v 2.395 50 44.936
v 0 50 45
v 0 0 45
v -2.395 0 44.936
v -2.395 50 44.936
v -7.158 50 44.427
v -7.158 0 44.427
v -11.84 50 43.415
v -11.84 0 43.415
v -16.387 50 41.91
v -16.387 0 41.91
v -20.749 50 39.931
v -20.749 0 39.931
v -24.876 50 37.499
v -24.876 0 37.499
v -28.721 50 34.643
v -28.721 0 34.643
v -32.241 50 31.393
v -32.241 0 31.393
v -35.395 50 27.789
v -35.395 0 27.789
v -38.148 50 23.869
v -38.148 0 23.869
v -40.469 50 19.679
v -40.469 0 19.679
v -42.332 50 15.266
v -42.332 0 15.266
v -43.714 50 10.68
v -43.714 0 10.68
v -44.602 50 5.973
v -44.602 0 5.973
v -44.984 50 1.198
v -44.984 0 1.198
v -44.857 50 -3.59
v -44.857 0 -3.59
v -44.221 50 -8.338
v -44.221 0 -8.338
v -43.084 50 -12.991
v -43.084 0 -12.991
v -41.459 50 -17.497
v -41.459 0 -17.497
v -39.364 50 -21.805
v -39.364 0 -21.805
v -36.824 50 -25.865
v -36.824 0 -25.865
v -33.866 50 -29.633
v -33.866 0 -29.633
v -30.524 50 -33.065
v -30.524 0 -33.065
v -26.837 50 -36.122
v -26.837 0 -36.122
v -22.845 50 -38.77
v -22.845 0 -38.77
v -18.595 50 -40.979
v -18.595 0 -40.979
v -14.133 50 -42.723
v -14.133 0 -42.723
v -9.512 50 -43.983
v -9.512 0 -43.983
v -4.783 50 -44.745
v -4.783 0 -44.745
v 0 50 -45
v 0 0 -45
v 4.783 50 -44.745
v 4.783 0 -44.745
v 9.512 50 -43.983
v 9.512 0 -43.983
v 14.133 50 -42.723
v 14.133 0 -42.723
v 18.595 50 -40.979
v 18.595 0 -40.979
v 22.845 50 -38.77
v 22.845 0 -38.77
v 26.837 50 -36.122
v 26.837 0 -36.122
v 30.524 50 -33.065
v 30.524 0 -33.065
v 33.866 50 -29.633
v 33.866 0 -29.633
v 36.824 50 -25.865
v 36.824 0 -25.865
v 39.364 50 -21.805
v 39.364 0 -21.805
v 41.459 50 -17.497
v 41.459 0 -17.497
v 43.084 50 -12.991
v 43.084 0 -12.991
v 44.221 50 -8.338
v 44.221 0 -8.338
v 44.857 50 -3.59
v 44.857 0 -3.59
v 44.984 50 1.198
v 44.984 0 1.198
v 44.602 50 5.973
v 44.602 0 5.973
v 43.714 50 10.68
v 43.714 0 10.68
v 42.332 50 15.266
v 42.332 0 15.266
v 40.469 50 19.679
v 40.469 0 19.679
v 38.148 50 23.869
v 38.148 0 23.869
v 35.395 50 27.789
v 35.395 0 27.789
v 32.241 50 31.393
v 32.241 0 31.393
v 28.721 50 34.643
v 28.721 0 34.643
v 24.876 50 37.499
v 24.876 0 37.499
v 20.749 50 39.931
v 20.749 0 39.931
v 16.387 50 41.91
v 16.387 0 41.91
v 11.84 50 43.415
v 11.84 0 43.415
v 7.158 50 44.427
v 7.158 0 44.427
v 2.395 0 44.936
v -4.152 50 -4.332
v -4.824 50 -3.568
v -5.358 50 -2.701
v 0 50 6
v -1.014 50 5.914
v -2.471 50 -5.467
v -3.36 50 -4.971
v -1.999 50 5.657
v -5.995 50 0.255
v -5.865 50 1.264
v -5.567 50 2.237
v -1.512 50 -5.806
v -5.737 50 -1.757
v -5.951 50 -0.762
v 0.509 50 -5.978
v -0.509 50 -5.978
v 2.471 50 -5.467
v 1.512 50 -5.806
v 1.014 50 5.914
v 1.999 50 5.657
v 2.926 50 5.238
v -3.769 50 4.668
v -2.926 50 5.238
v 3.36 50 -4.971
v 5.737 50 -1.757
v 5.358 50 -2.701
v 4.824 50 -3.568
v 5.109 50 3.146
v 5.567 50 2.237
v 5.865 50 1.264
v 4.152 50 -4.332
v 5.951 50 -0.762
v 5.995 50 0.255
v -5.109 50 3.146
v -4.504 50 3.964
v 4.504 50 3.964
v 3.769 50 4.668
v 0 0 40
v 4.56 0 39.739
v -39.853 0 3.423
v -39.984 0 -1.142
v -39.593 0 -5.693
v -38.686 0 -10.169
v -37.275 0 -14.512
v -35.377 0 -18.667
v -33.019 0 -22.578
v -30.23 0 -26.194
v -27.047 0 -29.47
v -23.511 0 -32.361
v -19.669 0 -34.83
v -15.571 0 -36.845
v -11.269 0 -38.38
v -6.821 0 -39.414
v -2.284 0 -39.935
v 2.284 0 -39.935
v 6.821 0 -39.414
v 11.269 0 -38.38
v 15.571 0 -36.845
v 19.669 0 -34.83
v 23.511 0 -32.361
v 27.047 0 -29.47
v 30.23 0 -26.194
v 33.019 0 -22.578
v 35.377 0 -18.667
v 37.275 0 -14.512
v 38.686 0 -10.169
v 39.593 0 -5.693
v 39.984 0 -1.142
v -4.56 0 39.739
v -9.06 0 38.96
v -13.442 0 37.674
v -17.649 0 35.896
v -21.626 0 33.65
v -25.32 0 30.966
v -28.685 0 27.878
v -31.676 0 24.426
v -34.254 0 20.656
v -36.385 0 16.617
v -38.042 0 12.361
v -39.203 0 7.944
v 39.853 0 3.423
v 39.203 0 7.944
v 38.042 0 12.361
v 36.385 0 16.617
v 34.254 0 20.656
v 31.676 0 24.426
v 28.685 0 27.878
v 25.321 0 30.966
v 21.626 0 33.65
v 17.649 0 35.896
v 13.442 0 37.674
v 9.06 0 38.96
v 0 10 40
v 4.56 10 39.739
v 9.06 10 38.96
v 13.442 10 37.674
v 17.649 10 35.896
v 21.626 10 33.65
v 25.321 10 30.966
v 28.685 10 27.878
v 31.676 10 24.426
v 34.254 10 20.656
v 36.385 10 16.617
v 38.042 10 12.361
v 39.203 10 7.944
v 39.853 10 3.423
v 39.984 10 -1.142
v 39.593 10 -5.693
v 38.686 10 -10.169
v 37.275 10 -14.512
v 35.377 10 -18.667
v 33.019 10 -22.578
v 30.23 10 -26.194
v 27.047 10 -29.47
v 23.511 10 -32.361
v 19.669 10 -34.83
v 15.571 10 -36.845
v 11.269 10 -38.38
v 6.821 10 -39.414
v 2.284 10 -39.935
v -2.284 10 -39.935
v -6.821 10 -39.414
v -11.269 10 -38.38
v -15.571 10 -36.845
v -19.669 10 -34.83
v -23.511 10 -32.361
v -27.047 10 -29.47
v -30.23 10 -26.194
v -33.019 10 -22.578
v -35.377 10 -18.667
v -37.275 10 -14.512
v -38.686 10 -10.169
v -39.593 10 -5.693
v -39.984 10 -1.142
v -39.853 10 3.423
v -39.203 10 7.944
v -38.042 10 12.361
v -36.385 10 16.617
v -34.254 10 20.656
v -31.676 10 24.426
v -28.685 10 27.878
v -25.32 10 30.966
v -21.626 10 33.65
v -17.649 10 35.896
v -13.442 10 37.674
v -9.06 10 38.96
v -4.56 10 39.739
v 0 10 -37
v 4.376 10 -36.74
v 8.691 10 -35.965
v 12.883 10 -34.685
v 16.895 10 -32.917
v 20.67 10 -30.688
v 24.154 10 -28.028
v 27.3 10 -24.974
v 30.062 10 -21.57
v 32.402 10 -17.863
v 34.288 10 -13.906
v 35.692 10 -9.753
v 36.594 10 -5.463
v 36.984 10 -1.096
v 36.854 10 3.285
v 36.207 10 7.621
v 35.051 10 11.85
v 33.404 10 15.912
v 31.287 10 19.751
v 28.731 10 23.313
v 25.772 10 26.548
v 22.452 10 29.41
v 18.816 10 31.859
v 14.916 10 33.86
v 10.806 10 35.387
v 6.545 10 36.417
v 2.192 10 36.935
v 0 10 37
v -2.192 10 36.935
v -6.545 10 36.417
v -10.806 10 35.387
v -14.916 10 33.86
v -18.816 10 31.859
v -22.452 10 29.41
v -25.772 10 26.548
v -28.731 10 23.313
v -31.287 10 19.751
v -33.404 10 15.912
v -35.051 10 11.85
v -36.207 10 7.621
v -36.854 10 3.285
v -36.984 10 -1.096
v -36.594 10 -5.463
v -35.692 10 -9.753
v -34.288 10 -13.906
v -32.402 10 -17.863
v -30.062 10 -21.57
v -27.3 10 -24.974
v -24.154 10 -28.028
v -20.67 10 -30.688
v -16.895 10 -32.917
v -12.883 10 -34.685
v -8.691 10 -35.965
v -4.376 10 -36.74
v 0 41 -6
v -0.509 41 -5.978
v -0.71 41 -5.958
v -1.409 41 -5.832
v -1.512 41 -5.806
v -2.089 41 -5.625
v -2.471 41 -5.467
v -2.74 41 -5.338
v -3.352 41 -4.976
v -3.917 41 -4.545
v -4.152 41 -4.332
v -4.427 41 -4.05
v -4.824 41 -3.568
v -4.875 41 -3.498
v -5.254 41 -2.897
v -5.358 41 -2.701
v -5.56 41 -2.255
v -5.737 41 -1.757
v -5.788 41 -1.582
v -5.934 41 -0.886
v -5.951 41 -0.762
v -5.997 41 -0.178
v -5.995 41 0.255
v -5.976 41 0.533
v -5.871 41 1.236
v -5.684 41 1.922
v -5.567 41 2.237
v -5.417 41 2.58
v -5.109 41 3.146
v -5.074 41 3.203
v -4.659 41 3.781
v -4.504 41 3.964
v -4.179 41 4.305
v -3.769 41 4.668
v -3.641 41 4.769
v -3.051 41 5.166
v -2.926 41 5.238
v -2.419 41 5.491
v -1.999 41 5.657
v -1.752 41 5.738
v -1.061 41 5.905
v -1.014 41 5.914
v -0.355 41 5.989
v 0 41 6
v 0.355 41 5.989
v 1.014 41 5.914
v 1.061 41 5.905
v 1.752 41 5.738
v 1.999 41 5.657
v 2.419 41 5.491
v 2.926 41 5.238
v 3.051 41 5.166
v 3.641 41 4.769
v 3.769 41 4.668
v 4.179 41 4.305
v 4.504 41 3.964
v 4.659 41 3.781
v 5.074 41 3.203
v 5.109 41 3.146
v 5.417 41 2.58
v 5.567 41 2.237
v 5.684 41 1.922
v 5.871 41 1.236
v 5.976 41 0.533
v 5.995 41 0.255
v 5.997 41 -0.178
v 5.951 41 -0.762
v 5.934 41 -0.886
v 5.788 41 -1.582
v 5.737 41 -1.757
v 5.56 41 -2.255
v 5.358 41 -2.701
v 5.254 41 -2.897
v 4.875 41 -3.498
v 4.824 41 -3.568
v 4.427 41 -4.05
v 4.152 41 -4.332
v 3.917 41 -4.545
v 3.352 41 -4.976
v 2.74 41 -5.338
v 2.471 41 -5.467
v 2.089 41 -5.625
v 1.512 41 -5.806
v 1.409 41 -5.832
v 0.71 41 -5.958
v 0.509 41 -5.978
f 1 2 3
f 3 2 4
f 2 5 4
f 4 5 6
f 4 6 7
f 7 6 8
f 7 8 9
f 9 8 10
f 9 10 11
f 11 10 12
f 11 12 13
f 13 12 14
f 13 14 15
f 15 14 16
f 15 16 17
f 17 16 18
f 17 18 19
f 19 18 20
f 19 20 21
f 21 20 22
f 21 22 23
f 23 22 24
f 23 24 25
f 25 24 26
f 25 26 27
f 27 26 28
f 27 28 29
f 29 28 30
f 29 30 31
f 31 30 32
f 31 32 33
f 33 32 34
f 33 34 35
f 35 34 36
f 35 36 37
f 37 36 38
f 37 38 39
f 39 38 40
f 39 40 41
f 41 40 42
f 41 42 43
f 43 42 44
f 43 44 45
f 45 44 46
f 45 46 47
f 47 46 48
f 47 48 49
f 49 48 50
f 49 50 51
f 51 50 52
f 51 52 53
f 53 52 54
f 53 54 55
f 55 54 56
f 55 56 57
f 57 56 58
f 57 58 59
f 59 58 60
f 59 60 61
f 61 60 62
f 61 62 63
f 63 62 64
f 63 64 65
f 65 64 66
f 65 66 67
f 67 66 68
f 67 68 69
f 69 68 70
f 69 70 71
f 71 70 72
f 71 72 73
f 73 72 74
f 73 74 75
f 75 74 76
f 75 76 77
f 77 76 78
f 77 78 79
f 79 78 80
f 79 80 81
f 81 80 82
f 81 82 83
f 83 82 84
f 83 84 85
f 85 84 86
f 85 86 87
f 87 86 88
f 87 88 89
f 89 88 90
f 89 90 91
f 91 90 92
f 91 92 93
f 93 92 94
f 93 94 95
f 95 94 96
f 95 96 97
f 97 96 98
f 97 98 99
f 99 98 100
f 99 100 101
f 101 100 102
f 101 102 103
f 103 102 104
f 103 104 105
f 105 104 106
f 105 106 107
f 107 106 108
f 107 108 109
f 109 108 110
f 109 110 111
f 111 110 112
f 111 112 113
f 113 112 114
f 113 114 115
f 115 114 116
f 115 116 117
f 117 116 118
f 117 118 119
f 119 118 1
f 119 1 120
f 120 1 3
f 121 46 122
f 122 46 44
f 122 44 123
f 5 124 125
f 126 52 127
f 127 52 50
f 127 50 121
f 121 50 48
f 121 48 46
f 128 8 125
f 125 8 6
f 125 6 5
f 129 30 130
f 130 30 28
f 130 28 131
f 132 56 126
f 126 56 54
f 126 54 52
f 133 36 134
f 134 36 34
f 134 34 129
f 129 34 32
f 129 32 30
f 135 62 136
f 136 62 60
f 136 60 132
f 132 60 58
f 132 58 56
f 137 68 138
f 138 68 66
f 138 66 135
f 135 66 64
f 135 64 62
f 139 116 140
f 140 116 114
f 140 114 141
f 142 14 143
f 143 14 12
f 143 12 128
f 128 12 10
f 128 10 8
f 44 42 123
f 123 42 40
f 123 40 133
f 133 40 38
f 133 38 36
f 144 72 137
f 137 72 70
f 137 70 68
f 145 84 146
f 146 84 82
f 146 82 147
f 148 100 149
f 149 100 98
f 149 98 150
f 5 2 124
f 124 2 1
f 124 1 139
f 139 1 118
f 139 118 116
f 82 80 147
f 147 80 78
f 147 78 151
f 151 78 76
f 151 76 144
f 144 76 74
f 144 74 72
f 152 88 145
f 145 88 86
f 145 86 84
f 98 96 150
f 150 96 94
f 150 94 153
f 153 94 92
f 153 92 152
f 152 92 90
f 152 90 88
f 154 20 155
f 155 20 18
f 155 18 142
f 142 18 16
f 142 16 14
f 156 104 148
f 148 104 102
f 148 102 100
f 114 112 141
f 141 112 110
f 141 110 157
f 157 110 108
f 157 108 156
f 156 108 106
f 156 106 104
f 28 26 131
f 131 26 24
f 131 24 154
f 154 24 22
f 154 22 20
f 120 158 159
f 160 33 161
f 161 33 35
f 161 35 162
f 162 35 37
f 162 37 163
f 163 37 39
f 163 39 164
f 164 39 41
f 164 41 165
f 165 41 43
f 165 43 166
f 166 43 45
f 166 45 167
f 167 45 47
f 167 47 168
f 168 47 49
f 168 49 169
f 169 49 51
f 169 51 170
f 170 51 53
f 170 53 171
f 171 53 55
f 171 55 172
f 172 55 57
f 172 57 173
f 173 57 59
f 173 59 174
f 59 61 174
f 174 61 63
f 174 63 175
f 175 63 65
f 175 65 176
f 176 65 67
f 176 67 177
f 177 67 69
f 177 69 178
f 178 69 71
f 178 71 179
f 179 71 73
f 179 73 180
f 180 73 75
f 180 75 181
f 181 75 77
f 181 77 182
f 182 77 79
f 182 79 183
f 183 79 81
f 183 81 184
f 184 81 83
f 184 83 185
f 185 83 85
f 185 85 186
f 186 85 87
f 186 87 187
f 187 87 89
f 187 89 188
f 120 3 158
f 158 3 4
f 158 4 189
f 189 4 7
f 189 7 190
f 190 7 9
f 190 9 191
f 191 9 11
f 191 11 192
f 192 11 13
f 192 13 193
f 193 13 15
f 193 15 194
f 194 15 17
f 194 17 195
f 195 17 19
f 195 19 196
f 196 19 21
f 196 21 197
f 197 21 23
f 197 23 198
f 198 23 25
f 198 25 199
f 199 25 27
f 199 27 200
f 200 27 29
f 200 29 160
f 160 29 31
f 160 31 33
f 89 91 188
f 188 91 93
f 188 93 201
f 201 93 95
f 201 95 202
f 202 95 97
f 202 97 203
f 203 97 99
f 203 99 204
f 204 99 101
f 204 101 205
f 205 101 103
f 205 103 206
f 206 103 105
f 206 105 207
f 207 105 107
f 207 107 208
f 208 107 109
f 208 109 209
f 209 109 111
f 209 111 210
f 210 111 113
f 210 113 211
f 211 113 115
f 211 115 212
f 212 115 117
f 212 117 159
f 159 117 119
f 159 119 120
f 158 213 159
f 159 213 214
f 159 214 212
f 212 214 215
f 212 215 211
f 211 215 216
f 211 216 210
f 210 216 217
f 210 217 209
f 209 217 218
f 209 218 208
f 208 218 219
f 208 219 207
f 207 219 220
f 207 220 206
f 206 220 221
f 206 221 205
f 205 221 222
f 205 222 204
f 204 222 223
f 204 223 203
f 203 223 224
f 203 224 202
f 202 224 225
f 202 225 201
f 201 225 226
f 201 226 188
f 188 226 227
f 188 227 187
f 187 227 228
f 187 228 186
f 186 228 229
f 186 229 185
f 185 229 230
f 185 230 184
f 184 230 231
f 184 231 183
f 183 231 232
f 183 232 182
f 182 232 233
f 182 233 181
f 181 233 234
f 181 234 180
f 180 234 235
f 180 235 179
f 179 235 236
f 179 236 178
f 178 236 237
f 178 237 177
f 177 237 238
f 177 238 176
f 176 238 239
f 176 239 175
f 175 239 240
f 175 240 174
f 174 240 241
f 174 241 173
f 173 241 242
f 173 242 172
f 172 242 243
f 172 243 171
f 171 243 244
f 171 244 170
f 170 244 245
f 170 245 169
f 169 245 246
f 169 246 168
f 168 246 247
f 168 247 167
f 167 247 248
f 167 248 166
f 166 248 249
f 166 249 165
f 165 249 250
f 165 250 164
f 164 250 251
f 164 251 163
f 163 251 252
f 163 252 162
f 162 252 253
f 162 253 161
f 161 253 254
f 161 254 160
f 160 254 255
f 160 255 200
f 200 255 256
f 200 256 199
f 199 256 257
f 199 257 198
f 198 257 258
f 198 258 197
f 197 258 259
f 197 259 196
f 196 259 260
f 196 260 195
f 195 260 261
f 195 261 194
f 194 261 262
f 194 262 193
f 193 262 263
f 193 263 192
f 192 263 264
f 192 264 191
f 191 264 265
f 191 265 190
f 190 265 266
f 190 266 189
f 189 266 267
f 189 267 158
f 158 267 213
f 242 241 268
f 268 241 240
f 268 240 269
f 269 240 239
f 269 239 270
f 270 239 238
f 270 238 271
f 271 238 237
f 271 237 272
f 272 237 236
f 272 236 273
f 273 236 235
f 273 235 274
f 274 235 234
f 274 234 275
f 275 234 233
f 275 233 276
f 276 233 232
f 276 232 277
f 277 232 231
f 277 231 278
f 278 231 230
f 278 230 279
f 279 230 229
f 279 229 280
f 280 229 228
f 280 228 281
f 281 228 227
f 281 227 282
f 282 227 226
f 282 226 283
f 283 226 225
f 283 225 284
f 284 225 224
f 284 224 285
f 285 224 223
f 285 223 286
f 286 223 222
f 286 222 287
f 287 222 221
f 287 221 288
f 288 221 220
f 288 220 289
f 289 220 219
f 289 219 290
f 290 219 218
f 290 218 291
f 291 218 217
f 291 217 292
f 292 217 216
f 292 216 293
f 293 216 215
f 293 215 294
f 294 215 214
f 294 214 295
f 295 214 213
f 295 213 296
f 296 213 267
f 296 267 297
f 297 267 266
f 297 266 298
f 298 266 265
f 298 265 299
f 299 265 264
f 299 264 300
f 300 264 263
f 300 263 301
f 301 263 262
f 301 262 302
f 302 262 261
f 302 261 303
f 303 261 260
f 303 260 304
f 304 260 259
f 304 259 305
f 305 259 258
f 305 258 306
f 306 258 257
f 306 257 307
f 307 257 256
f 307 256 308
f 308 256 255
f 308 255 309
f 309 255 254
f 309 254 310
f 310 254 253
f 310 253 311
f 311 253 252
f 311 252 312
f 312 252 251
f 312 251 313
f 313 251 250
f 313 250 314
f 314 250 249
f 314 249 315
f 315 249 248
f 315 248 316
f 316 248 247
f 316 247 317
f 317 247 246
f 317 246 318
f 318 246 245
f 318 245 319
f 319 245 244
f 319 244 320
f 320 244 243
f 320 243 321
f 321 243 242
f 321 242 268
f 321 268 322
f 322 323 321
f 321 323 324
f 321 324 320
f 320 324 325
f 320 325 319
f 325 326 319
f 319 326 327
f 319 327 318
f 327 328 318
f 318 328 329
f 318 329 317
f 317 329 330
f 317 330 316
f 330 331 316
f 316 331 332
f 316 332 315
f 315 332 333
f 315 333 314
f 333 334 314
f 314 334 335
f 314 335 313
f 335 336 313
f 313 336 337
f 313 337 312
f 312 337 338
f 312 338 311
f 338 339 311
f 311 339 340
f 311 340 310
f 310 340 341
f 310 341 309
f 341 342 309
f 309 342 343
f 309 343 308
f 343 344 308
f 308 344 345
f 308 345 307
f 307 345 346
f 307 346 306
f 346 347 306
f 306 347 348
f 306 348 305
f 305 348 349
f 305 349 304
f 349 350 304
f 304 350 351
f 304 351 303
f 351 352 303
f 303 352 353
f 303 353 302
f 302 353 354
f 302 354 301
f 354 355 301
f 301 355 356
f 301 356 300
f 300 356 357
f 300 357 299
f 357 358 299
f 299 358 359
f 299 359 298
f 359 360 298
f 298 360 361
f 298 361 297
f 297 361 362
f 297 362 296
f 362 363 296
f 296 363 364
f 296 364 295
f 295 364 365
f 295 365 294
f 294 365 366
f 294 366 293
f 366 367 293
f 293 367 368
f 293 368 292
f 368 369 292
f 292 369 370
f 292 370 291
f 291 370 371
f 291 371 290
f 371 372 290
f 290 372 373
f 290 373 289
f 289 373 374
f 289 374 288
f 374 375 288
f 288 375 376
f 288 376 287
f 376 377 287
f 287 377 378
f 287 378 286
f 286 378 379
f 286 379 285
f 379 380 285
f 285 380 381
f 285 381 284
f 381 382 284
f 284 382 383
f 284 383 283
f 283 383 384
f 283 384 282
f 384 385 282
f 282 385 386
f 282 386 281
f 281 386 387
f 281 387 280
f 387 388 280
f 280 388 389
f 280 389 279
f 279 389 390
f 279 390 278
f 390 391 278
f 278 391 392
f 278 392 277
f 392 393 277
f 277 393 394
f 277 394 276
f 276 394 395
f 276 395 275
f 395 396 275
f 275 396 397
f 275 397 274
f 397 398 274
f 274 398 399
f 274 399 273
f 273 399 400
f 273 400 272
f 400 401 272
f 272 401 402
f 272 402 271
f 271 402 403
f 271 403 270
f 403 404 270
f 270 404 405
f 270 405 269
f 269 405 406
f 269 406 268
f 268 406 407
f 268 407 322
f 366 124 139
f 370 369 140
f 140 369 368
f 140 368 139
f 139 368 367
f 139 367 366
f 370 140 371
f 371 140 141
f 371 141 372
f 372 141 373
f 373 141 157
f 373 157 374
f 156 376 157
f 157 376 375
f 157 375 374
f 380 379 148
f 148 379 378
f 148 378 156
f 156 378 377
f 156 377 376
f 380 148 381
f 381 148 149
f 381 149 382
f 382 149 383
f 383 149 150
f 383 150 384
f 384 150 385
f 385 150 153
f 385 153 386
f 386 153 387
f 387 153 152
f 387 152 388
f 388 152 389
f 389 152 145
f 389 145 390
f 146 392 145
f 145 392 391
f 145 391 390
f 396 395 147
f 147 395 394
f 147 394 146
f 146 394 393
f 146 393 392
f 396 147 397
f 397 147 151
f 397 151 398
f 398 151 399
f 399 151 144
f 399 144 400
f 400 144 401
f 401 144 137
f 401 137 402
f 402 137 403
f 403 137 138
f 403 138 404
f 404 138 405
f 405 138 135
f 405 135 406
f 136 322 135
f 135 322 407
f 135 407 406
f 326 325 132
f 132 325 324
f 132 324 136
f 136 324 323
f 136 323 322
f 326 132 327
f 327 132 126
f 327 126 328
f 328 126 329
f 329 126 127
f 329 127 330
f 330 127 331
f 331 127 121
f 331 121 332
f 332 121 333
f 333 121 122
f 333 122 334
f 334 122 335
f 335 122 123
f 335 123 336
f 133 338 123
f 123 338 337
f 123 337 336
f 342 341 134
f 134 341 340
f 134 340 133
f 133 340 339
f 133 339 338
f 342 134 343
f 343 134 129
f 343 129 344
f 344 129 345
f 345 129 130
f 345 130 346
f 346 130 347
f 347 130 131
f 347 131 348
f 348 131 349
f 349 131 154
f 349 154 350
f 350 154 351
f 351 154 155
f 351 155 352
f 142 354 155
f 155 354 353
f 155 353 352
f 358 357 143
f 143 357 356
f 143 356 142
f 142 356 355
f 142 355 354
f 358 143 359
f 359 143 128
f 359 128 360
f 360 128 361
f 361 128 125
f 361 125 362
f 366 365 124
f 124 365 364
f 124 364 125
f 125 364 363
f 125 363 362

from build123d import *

# Parameters (mm, degrees)
SKETCH1_R           = 45
BOSS_EXTRUDE1_DEPTH = 50


with BuildPart() as part:
    # Sketch1 → Boss-Extrude1 (new body)
    with BuildSketch(Plane(origin=(0, 0, 0), x_dir=(1, 0, 0), z_dir=(0, 1, 0))):
        Circle(SKETCH1_R)
    extrude(amount=BOSS_EXTRUDE1_DEPTH)

    # Sketch2 → Cut-Revolve1 (revolve, cut)
    with BuildSketch(Plane(origin=(0, 0, 0), x_dir=(0, 0, -1), z_dir=(1, 0, 0))):
        Polygon((0, 50), (0, 0), (-40, 0), (-40, 10), (-37, 10), (-6, 41), (-6, 50), align=None)
    revolve(axis=Axis((0, 50, 0), (0, -1, 0)), mode=Mode.SUBTRACT)


solid = part.part
